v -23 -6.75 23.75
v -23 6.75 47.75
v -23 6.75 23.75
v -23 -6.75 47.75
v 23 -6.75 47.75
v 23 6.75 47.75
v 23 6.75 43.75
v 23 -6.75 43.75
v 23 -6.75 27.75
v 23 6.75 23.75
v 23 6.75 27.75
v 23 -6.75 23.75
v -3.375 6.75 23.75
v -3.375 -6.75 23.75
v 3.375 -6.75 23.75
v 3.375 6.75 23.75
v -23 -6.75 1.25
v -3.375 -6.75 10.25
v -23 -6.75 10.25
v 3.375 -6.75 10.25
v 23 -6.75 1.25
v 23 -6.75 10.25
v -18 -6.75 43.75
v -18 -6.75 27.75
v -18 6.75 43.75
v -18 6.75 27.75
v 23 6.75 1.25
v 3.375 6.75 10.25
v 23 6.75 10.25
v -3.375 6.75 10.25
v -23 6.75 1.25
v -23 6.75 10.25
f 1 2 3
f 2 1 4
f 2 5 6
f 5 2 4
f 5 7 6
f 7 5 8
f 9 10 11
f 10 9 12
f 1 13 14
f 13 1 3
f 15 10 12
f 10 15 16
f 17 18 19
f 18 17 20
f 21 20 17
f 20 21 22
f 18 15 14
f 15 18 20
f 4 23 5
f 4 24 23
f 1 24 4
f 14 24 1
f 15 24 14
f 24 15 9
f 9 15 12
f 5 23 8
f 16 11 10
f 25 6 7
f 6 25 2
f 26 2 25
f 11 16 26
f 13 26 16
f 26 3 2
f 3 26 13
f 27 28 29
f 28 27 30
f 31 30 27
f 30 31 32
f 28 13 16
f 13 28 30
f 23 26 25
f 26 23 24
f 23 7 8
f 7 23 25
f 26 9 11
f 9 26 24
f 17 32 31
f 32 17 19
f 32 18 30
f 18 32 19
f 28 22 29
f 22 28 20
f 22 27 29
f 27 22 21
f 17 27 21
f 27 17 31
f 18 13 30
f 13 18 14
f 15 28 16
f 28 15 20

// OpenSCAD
// file: servo.scad
//parameters
servo_width = 12;
servo_length = 24;
servo_height = 24;
ex_length = 5;
ex_height = 4;
shaft_offset = 5;
shaft_radius = 5;
shaft_height = 5;

module mirror_copy(vec=[0,1,0]){
    children();
    mirror(vec)children();
}

module back_holes(){
    mirror_copy([1,0,0])translate([top_component_width/2-round((top_component_width*0.1)/2)-3,0,0])
    cube([round(top_component_width*0.15),back_component_length,top_component_height*0.6], true);    
}

module servo(){
    translate([0,0,servo_height/2])
    union(){
        //extrusion
        mirror_copy()
            translate([0,servo_length/2+ex_length/2,(servo_height/2)-ex_height/2])
                cube([servo_width, ex_length, ex_height], true);
        //shaft
        translate([0,-servo_length/2+shaft_radius,servo_height/2+shaft_height/2])
        cylinder(shaft_height, shaft_radius, shaft_radius, true);
        //base
        cube([servo_width, servo_length, servo_height], true);
    }
}
// file: fixture.scad
include <servo.scad>
include <parameters.scad>

//parameters
clickon_width = outer_width+0.2;
clickon_length = 4;
leg_height = base_height+3.5;
holder_height = 5;
holder_width = 0.1;
holder_base_width = 3;

module fixture(){
    //base
    cube([clickon_length,clickon_width,clickon_height], true);
    //leg 1
    translate([0,clickon_width/2+leg_width/2,1-leg_height/2])
    union(){
        cube([4,leg_width,leg_height], true);
        hull(){
            translate([0,leg_width/2-holder_width/2,-leg_height/2-holder_height/2])
            cube([clickon_length, holder_width, holder_height], true);    
            translate([0,leg_width/2-holder_base_width/2,-leg_height/2])
            cube([clickon_length, holder_base_width, holder_width], true);
        }
    }
    //leg 2
    translate([0,-(clickon_width/2+leg_width/2),1-leg_height/2])
    rotate([0,0,180])
    union(){
        cube([4,leg_width,leg_height], true);
        hull(){
            translate([0,leg_width/2-holder_width/2,-leg_height/2-holder_height/2])
            cube([clickon_length, holder_width, holder_height], true);    
            translate([0,leg_width/2-holder_base_width/2,-leg_height/2])
            cube([clickon_length, holder_base_width, holder_width], true);
        }
    }
    //top part 1
    translate([0,top_part_diplacement,clickon_height/2+leg_height/2])
    rotate([0,180,0])
    union(){
        cube([4,leg_width,leg_height], true);
        hull(){
            translate([0,leg_width/2-holder_width/2,-leg_height/2-holder_height/2])
            cube([clickon_length, holder_width, holder_height], true);    
            translate([0,leg_width/2-holder_base_width/2,-leg_height/2])
            cube([clickon_length, holder_base_width, holder_width], true);
        }
    }
    //top part 2
    translate([0,-top_part_diplacement,clickon_height/2+leg_height/2])
    rotate([0,180,180])
    union(){
        cube([4,leg_width,leg_height], true);
        hull(){
            translate([0,leg_width/2-holder_width/2,-leg_height/2-holder_height/2])
            cube([clickon_length, holder_width, holder_height], true);    
            translate([0,leg_width/2-holder_base_width/2,-leg_height/2])
            cube([clickon_length, holder_base_width, holder_width], true);
        }
    }
}
// file: parameters.scad
//parameters

//base
back_length = 10;
outer_width = 20;
outer_length = 36+back_length;
inner_width = 12;
inner_length = 25;
base_height = 6;
front_offset = round((outer_length-inner_length)/2)-4;
back_component_length = 10;
back_component_height = 50;
back_offset = outer_length/2+back_component_length/2;
top_component_height = 8;
top_component_width = 40;

//hangon
contact_delta = 50;
hangon_support_length = 8;
hangon_support_delta = 2.5;
hangon_support_distance = (top_component_width/2-round((top_component_width*0.1)/2)-hangon_support_delta);
shaft_center = (-hangon_support_length-((hangon_support_distance+10)/2))-contact_delta;
hangon_base_diameter = hangon_support_distance+30;

//fixture
top_part_diplacement = 8;
leg_width = 2;
clickon_height = 2;
// main file
include <parameters.scad>
include <fixture.scad>

translate([-10,0,0])
%fixture();

fitting_factor = 0.5;
mount_width = top_part_diplacement*2-(leg_width)-fitting_factor;
mount_height = leg_height-fitting_factor;
mount_length = outer_length;
mount_top_inner_height = 16;
mount_top_outer_height = mount_top_inner_height+8;
mount_top_inner_length = outer_length-5;
mount_top_inner_width = mount_width-5;

translate([0,0,leg_height/2+clickon_height/2])
union(){
    //base
    cube([outer_length,top_part_diplacement*2-(leg_width)-fitting_factor,leg_height-fitting_factor], true);
    //middle
    translate([0,0,mount_height/2+mount_width/2])
    cube([mount_width/2,mount_width,mount_width], true);
    //top
    translate([0,0,mount_height/2+mount_width+mount_top_outer_height/2])
    difference(){
        cube([outer_length,mount_width,mount_top_outer_height], true);
        translate([(outer_length-mount_top_inner_length)/2,0,0])
        cube([mount_top_inner_length,mount_width,mount_top_inner_height], true);
    }
    
}
